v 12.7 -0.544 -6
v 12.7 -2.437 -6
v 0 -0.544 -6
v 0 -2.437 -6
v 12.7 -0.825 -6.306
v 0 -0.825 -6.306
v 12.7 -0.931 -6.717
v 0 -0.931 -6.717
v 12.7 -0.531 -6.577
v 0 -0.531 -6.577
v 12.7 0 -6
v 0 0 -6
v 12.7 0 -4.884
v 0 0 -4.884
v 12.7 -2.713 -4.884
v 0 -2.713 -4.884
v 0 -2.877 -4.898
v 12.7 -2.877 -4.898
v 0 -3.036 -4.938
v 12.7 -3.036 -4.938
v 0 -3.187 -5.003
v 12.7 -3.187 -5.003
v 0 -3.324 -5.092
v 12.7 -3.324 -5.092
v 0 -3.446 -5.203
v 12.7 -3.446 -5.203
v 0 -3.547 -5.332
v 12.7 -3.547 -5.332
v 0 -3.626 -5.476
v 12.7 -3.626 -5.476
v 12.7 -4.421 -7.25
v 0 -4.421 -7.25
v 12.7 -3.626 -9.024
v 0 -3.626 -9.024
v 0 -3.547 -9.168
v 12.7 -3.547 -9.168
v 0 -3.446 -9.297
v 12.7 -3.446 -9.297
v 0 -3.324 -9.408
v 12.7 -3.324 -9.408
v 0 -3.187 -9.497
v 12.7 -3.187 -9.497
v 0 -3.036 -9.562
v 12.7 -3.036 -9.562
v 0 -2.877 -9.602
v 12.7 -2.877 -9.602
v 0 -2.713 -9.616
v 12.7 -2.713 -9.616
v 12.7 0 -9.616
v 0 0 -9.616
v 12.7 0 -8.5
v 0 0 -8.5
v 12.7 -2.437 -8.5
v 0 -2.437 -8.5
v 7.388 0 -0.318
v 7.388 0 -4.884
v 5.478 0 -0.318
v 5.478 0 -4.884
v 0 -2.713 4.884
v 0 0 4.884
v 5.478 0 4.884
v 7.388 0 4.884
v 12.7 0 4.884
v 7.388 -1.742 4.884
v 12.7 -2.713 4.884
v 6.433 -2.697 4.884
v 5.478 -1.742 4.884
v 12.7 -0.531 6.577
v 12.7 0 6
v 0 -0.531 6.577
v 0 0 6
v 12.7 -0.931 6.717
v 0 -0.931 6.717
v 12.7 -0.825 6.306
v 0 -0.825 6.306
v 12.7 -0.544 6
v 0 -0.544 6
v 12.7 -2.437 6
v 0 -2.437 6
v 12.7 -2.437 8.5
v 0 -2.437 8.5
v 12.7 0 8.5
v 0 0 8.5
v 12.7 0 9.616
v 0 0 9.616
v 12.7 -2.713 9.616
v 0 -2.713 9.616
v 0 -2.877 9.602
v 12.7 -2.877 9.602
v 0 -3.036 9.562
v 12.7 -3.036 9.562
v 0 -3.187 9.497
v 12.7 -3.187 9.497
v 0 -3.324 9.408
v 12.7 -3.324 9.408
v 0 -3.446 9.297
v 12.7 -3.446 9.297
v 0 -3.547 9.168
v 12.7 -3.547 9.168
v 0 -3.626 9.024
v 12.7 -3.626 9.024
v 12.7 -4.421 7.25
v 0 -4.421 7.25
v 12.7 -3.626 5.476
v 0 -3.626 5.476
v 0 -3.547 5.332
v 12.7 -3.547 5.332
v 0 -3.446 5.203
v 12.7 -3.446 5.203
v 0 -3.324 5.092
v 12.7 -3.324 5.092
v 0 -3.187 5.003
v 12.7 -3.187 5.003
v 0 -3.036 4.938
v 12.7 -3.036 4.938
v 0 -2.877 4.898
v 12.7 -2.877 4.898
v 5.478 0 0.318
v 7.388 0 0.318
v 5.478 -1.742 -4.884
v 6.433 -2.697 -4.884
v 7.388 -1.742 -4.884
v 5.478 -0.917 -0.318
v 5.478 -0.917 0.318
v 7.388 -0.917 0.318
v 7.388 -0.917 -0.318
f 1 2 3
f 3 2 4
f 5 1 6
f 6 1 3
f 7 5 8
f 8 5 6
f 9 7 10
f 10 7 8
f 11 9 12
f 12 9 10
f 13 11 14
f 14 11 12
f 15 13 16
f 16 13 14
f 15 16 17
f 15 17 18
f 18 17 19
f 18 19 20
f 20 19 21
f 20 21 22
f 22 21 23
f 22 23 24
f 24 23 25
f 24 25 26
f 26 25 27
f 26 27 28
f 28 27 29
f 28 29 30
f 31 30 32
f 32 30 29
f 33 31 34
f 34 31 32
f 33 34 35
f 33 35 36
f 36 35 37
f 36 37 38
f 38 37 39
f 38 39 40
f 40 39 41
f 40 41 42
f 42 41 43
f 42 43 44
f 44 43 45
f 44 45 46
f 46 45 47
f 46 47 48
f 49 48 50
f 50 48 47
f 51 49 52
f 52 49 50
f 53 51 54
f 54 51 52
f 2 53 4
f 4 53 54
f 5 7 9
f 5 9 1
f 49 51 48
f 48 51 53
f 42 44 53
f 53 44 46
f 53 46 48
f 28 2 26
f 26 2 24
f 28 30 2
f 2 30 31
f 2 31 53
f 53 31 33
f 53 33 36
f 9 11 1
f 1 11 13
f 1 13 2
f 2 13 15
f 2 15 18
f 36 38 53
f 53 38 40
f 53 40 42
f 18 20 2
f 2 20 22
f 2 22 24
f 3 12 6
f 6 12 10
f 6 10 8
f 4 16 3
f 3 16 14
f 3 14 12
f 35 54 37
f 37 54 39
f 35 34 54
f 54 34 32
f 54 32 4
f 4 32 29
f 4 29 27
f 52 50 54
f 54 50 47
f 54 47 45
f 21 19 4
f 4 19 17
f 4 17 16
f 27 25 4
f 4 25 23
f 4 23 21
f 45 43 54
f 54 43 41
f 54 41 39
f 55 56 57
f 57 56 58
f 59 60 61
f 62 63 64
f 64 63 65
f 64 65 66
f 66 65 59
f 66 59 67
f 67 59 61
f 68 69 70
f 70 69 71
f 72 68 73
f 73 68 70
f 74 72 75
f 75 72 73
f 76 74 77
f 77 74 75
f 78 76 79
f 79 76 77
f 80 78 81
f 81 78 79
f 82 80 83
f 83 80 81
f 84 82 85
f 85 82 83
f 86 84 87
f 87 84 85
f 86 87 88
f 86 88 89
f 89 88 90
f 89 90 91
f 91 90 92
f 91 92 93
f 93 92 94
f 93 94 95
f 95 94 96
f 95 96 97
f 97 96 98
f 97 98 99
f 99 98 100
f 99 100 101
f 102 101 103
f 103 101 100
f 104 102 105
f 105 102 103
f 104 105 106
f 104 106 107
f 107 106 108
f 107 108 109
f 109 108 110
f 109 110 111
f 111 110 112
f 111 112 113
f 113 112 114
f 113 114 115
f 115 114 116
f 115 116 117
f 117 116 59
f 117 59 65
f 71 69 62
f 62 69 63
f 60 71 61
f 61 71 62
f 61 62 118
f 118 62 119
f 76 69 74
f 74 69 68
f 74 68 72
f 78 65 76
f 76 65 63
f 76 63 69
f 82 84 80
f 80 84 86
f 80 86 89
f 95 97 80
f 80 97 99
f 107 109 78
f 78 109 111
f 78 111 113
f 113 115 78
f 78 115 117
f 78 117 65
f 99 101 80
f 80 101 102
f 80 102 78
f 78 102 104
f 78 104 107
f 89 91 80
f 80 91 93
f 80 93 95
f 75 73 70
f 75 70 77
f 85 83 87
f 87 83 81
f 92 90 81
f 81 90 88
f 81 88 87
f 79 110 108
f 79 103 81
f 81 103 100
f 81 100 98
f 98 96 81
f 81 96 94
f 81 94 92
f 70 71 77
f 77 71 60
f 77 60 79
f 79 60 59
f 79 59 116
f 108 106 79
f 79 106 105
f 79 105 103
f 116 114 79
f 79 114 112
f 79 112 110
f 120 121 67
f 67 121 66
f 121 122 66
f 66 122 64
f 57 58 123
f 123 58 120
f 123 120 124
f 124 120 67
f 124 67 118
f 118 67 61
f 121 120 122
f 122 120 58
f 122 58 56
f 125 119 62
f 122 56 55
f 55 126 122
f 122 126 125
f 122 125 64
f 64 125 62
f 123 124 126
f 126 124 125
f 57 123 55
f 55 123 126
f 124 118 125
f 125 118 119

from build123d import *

# Parameters (mm, degrees)
BOSS_EXTRUDE1_DEPTH   = 12.7
BOSS_EXTRUDE1_2_DEPTH = 12.7
BOSS_EXTRUDE2_REACH   = 21.776
SKETCH3_W             = 0.635
SKETCH3_H             = 0.917188339
CUT_EXTRUDE1_DEPTH    = 1.90971


with BuildPart() as part:
    # Sketch1 → Boss-Extrude1 (new body)
    with BuildSketch(Plane(origin=(0, 0, 0), x_dir=(0, 0, -1), z_dir=(1, 0, 0))):
        with BuildLine():
            Line((6.30611145, -0.825095556), (6, -0.543502834))
            Line((6, -0.543502834), (6, -2.437418567))
            Line((6, -2.437418567), (8.5, -2.437418567))
            Line((8.5, -2.437418567), (8.5, 0))
            Line((8.5, 0), (9.615854332, 0))
            Line((9.615854332, 0), (9.615854332, -2.713473186))
            ThreePointArc((9.615854332, -2.713473186), (9.455087427, -3.257245023), (9.02447871, -3.62617583))
            Line((9.02447871, -3.62617583), (7.25, -4.420624343))
            Line((7.25, -4.420624343), (5.47552129, -3.62617583))
            ThreePointArc((5.47552129, -3.62617583), (5.044912573, -3.257245023), (4.884145668, -2.713473186))
            Line((4.884145668, -2.713473186), (4.884145668, 0))
            Line((4.884145668, 0), (6, 0))
            Line((6, 0), (6.576918535, -0.530708867))
            Line((6.576918535, -0.530708867), (6.717048019, -0.931365761))
            Line((6.717048019, -0.931365761), (6.30611145, -0.825095556))
        make_face()
    extrude(amount=BOSS_EXTRUDE1_DEPTH)


with BuildPart() as body_2:
    # Sketch1 → Boss-Extrude1 2 (new body)
    with BuildSketch(Plane(origin=(0, 0, 0), x_dir=(0, 0, -1), z_dir=(1, 0, 0))):
        with BuildLine():
            Line((-6, 0), (-4.884145668, 0))
            Line((-4.884145668, 0), (-4.884145668, -2.713473186))
            ThreePointArc((-4.884145668, -2.713473186), (-5.044912573, -3.257245023), (-5.47552129, -3.62617583))
            Line((-5.47552129, -3.62617583), (-7.25, -4.420624343))
            Line((-7.25, -4.420624343), (-9.02447871, -3.62617583))
            ThreePointArc((-9.02447871, -3.62617583), (-9.455087427, -3.257245023), (-9.615854332, -2.713473186))
            Line((-9.615854332, -2.713473186), (-9.615854332, 0))
            Line((-9.615854332, 0), (-8.5, 0))
            Line((-8.5, 0), (-8.5, -2.437418567))
            Line((-8.5, -2.437418567), (-6, -2.437418567))
            Line((-6, -2.437418567), (-6, -0.543502834))
            Line((-6, -0.543502834), (-6.30611145, -0.825095556))
            Line((-6.30611145, -0.825095556), (-6.717048019, -0.931365761))
            Line((-6.717048019, -0.931365761), (-6.576918535, -0.530708867))
            Line((-6.576918535, -0.530708867), (-6, 0))
        make_face()
    extrude(amount=BOSS_EXTRUDE1_2_DEPTH)

    # Sketch2 → Boss-Extrude2 (add, up to next)
    with BuildSketch(Plane.XY.offset(-4.884145668), mode=Mode.PRIVATE) as boss_extrude2_sk1:
        Polygon((5.47811731, 0), (7.387826905, 0), (7.387826905, -1.741683954), (6.432972108, -2.696538752), (5.47811731, -1.741683954), align=None)
    boss_extrude2_tool1 = extrude(boss_extrude2_sk1.sketch, amount=BOSS_EXTRUDE2_REACH, mode=Mode.PRIVATE) - body_2.part
    add(boss_extrude2_tool1.solids().sort_by_distance((6.432972, -1.126675, -4.884146))[0])

    # Sketch3 → Cut-Extrude1 (cut)
    with BuildSketch(Plane.ZY.offset(-5.47811731)):
        with Locations((0, -0.45859417)):
            Rectangle(SKETCH3_W, SKETCH3_H)
    extrude(amount=-CUT_EXTRUDE1_DEPTH, mode=Mode.SUBTRACT)


solid = Compound([part.part, body_2.part])
